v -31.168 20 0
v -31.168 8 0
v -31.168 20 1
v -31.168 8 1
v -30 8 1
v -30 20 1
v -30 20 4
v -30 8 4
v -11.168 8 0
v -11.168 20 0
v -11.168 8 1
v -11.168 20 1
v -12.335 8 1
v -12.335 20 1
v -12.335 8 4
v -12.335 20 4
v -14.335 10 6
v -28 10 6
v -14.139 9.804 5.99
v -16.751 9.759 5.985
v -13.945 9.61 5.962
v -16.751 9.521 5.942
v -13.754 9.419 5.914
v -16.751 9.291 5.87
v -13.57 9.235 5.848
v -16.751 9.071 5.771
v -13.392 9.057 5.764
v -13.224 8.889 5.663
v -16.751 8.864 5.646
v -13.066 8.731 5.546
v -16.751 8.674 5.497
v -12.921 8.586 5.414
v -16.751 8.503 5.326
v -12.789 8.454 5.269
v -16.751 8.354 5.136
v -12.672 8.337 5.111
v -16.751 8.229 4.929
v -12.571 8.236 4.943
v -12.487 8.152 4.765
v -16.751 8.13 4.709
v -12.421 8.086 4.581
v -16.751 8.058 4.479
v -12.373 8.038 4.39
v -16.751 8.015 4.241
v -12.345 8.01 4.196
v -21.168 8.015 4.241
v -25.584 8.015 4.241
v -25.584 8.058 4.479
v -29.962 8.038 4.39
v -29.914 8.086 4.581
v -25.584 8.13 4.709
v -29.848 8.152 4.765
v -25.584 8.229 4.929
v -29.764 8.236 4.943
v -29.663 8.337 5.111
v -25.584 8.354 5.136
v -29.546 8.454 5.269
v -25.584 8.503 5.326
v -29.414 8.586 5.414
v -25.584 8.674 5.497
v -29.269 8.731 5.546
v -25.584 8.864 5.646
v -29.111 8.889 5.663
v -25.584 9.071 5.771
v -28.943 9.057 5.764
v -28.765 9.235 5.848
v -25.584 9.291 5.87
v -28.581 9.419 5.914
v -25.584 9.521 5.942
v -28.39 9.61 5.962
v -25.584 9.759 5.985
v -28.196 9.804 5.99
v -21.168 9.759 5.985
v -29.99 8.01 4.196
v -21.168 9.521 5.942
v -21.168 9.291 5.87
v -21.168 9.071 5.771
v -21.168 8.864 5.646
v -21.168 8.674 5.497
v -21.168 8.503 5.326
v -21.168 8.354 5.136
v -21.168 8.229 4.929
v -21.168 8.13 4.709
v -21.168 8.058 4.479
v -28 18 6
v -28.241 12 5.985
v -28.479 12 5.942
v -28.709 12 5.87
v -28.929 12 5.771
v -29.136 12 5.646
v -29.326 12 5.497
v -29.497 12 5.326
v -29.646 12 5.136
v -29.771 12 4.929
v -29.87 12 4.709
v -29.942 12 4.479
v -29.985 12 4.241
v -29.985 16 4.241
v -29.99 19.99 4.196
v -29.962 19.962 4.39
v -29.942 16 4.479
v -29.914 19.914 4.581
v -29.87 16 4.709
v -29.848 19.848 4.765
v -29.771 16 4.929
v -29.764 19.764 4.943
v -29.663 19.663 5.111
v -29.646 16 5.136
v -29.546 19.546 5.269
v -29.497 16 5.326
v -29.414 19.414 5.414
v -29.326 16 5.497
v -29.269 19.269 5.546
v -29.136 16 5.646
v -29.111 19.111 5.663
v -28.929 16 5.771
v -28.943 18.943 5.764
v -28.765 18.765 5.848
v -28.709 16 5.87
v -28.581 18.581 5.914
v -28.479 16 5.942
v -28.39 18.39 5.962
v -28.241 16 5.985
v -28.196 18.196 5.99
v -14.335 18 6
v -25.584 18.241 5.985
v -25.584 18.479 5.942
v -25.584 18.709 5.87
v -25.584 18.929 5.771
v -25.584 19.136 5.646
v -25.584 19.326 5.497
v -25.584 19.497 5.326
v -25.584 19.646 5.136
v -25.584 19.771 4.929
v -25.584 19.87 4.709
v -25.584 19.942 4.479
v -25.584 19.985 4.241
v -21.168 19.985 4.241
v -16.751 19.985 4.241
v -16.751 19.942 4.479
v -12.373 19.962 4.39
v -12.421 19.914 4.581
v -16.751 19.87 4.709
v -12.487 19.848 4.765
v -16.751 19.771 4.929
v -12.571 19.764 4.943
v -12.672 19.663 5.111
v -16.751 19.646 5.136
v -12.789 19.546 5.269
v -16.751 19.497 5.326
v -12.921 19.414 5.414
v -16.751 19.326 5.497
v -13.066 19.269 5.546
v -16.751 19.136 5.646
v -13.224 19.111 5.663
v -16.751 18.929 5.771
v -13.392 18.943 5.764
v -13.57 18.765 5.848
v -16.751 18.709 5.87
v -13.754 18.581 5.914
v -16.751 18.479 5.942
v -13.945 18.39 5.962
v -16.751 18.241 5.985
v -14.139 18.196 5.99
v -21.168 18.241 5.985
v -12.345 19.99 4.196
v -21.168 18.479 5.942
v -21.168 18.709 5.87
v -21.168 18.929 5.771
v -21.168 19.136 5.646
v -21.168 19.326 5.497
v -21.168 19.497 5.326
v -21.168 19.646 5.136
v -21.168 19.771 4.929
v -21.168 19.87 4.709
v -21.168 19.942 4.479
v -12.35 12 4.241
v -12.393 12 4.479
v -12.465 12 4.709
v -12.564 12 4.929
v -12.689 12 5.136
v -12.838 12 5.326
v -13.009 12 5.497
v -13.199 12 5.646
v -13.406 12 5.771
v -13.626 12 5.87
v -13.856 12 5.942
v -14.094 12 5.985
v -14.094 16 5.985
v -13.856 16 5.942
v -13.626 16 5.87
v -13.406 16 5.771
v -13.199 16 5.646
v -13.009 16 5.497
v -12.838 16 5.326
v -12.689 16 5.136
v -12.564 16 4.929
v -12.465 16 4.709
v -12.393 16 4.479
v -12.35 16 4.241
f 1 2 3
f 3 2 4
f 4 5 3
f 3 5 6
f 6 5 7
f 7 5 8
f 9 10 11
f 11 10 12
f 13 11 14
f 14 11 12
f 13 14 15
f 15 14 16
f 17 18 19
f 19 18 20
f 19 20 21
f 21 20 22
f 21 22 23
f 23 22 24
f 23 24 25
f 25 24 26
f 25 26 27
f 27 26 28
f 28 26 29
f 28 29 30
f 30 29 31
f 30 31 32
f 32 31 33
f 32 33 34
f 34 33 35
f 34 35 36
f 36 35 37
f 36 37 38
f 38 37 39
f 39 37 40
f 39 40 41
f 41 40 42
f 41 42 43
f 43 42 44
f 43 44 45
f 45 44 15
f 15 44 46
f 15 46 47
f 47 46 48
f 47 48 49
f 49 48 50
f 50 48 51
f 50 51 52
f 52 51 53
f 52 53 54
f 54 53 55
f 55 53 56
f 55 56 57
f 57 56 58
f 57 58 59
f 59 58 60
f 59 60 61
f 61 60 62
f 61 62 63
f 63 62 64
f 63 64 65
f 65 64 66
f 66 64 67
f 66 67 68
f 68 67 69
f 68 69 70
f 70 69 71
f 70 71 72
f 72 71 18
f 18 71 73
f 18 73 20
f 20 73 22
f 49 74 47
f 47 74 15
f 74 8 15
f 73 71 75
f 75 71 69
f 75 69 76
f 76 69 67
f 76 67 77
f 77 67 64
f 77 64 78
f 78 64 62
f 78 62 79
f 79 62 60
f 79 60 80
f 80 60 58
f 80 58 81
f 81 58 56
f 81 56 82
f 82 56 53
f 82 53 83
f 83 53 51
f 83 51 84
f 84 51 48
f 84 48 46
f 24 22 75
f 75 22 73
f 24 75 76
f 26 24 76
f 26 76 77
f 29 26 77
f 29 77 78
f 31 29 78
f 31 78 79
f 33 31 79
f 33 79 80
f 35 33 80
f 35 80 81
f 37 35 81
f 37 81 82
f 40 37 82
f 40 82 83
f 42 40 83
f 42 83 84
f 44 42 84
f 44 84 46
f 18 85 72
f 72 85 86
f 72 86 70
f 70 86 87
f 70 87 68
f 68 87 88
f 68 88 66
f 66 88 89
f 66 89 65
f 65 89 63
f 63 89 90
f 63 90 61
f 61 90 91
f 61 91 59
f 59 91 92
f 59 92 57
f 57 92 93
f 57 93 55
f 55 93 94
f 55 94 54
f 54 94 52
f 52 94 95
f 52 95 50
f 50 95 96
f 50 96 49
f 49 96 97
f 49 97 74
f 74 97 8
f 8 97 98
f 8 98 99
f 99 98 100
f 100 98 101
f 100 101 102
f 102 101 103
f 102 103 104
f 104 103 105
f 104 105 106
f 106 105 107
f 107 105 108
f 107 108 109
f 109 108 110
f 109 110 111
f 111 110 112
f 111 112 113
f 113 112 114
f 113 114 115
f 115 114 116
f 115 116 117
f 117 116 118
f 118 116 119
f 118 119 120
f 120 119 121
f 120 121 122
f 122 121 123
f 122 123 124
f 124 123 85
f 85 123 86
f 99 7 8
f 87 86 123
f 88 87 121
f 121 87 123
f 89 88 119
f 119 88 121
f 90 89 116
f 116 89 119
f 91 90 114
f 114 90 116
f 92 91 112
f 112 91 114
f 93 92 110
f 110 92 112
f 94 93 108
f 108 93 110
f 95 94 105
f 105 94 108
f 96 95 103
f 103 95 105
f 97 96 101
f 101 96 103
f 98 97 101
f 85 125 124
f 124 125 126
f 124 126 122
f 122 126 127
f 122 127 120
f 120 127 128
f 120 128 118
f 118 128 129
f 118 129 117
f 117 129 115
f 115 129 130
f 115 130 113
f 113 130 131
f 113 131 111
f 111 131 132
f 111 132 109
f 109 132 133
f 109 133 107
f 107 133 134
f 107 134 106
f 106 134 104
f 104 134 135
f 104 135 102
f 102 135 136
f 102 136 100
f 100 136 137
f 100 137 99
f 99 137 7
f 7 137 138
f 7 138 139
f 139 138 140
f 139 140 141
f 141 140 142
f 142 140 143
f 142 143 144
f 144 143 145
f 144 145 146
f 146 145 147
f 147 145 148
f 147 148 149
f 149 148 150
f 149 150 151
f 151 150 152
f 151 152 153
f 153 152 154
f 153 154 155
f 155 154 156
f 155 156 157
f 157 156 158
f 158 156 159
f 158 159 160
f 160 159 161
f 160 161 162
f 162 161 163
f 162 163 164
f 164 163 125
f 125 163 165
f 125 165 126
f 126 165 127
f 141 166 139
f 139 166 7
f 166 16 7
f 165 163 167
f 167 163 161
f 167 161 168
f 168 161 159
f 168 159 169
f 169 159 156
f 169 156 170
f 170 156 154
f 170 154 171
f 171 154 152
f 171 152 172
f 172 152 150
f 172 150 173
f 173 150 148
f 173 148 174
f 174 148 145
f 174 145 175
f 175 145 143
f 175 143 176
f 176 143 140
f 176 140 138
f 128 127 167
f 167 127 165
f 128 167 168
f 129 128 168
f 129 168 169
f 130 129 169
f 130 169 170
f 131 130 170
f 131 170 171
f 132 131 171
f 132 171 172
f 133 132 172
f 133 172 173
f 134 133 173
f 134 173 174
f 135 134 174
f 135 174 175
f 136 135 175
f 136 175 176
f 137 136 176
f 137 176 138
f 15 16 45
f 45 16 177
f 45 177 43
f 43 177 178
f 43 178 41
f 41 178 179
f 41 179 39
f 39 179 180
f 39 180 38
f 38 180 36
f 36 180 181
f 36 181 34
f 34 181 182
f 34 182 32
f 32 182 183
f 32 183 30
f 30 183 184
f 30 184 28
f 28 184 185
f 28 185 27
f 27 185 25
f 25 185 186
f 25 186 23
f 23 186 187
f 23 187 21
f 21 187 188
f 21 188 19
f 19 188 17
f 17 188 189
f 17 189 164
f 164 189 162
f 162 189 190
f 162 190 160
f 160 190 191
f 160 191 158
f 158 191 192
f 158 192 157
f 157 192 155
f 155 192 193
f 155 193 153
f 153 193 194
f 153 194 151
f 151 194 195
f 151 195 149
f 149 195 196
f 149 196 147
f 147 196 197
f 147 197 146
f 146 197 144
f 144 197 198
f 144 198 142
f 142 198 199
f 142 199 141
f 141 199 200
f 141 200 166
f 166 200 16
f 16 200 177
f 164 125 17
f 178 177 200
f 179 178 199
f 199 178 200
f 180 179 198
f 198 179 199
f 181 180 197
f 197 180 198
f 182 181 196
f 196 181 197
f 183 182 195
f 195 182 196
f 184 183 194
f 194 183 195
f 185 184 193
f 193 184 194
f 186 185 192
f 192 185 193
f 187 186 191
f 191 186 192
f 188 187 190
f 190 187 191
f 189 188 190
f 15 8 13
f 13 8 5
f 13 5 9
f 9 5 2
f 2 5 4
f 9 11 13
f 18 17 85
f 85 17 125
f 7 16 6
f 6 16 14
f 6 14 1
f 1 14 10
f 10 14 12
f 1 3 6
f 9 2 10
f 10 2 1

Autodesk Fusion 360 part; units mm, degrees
sketch "Sketch1" plane through (0, 0, 0) normal (0, 0, 1) x (1, 0, 0)
  line L0 (-30, 20) -> (-12.335, 20)
  line L1 (-12.335, 20) -> (-12.335, 8)
  line L2 (-12.335, 8) -> (-30, 8)
  line L3 (-30, 8) -> (-30, 20)
  dimension "d1" = 17.665
  dimension "d2" = 12
extrude "Extrude1" add sketch "Sketch1" along normal blind 6
fillet "Fillet1" radius 2 4 edges at (-21.1675, 20, 6) (-12.335, 14, 6) (-30, 14, 6) (-21.1675, 8, 6)
sketch "Sketch2" plane through (0, 0, 0) normal (0, 0, -1) x (-1, 0, 0)
  line L0 (12.335, 8) -> (30, 8)
  line L1 (30, 8) -> (30, 20)
  line L2 (30, 20) -> (12.335, 20)
  line L3 (12.335, 20) -> (12.335, 8)
  line L4 (11.1675, 20) -> (31.1675, 20)
  line L5 (11.1675, 8) -> (31.1675, 8)
  line L6 (31.1675, 20) -> (31.1675, 8)
  line L7 (11.1675, 8) -> (11.1675, 20)
  point P0 (21.1675, 20)
  point P1 (21.1675, 8)
  dimension "d7" = 20
extrude "Extrude2" add sketch "Sketch2" against normal blind 1 contours L3 L4 L5 L7 | L1 L4 L5 L6
